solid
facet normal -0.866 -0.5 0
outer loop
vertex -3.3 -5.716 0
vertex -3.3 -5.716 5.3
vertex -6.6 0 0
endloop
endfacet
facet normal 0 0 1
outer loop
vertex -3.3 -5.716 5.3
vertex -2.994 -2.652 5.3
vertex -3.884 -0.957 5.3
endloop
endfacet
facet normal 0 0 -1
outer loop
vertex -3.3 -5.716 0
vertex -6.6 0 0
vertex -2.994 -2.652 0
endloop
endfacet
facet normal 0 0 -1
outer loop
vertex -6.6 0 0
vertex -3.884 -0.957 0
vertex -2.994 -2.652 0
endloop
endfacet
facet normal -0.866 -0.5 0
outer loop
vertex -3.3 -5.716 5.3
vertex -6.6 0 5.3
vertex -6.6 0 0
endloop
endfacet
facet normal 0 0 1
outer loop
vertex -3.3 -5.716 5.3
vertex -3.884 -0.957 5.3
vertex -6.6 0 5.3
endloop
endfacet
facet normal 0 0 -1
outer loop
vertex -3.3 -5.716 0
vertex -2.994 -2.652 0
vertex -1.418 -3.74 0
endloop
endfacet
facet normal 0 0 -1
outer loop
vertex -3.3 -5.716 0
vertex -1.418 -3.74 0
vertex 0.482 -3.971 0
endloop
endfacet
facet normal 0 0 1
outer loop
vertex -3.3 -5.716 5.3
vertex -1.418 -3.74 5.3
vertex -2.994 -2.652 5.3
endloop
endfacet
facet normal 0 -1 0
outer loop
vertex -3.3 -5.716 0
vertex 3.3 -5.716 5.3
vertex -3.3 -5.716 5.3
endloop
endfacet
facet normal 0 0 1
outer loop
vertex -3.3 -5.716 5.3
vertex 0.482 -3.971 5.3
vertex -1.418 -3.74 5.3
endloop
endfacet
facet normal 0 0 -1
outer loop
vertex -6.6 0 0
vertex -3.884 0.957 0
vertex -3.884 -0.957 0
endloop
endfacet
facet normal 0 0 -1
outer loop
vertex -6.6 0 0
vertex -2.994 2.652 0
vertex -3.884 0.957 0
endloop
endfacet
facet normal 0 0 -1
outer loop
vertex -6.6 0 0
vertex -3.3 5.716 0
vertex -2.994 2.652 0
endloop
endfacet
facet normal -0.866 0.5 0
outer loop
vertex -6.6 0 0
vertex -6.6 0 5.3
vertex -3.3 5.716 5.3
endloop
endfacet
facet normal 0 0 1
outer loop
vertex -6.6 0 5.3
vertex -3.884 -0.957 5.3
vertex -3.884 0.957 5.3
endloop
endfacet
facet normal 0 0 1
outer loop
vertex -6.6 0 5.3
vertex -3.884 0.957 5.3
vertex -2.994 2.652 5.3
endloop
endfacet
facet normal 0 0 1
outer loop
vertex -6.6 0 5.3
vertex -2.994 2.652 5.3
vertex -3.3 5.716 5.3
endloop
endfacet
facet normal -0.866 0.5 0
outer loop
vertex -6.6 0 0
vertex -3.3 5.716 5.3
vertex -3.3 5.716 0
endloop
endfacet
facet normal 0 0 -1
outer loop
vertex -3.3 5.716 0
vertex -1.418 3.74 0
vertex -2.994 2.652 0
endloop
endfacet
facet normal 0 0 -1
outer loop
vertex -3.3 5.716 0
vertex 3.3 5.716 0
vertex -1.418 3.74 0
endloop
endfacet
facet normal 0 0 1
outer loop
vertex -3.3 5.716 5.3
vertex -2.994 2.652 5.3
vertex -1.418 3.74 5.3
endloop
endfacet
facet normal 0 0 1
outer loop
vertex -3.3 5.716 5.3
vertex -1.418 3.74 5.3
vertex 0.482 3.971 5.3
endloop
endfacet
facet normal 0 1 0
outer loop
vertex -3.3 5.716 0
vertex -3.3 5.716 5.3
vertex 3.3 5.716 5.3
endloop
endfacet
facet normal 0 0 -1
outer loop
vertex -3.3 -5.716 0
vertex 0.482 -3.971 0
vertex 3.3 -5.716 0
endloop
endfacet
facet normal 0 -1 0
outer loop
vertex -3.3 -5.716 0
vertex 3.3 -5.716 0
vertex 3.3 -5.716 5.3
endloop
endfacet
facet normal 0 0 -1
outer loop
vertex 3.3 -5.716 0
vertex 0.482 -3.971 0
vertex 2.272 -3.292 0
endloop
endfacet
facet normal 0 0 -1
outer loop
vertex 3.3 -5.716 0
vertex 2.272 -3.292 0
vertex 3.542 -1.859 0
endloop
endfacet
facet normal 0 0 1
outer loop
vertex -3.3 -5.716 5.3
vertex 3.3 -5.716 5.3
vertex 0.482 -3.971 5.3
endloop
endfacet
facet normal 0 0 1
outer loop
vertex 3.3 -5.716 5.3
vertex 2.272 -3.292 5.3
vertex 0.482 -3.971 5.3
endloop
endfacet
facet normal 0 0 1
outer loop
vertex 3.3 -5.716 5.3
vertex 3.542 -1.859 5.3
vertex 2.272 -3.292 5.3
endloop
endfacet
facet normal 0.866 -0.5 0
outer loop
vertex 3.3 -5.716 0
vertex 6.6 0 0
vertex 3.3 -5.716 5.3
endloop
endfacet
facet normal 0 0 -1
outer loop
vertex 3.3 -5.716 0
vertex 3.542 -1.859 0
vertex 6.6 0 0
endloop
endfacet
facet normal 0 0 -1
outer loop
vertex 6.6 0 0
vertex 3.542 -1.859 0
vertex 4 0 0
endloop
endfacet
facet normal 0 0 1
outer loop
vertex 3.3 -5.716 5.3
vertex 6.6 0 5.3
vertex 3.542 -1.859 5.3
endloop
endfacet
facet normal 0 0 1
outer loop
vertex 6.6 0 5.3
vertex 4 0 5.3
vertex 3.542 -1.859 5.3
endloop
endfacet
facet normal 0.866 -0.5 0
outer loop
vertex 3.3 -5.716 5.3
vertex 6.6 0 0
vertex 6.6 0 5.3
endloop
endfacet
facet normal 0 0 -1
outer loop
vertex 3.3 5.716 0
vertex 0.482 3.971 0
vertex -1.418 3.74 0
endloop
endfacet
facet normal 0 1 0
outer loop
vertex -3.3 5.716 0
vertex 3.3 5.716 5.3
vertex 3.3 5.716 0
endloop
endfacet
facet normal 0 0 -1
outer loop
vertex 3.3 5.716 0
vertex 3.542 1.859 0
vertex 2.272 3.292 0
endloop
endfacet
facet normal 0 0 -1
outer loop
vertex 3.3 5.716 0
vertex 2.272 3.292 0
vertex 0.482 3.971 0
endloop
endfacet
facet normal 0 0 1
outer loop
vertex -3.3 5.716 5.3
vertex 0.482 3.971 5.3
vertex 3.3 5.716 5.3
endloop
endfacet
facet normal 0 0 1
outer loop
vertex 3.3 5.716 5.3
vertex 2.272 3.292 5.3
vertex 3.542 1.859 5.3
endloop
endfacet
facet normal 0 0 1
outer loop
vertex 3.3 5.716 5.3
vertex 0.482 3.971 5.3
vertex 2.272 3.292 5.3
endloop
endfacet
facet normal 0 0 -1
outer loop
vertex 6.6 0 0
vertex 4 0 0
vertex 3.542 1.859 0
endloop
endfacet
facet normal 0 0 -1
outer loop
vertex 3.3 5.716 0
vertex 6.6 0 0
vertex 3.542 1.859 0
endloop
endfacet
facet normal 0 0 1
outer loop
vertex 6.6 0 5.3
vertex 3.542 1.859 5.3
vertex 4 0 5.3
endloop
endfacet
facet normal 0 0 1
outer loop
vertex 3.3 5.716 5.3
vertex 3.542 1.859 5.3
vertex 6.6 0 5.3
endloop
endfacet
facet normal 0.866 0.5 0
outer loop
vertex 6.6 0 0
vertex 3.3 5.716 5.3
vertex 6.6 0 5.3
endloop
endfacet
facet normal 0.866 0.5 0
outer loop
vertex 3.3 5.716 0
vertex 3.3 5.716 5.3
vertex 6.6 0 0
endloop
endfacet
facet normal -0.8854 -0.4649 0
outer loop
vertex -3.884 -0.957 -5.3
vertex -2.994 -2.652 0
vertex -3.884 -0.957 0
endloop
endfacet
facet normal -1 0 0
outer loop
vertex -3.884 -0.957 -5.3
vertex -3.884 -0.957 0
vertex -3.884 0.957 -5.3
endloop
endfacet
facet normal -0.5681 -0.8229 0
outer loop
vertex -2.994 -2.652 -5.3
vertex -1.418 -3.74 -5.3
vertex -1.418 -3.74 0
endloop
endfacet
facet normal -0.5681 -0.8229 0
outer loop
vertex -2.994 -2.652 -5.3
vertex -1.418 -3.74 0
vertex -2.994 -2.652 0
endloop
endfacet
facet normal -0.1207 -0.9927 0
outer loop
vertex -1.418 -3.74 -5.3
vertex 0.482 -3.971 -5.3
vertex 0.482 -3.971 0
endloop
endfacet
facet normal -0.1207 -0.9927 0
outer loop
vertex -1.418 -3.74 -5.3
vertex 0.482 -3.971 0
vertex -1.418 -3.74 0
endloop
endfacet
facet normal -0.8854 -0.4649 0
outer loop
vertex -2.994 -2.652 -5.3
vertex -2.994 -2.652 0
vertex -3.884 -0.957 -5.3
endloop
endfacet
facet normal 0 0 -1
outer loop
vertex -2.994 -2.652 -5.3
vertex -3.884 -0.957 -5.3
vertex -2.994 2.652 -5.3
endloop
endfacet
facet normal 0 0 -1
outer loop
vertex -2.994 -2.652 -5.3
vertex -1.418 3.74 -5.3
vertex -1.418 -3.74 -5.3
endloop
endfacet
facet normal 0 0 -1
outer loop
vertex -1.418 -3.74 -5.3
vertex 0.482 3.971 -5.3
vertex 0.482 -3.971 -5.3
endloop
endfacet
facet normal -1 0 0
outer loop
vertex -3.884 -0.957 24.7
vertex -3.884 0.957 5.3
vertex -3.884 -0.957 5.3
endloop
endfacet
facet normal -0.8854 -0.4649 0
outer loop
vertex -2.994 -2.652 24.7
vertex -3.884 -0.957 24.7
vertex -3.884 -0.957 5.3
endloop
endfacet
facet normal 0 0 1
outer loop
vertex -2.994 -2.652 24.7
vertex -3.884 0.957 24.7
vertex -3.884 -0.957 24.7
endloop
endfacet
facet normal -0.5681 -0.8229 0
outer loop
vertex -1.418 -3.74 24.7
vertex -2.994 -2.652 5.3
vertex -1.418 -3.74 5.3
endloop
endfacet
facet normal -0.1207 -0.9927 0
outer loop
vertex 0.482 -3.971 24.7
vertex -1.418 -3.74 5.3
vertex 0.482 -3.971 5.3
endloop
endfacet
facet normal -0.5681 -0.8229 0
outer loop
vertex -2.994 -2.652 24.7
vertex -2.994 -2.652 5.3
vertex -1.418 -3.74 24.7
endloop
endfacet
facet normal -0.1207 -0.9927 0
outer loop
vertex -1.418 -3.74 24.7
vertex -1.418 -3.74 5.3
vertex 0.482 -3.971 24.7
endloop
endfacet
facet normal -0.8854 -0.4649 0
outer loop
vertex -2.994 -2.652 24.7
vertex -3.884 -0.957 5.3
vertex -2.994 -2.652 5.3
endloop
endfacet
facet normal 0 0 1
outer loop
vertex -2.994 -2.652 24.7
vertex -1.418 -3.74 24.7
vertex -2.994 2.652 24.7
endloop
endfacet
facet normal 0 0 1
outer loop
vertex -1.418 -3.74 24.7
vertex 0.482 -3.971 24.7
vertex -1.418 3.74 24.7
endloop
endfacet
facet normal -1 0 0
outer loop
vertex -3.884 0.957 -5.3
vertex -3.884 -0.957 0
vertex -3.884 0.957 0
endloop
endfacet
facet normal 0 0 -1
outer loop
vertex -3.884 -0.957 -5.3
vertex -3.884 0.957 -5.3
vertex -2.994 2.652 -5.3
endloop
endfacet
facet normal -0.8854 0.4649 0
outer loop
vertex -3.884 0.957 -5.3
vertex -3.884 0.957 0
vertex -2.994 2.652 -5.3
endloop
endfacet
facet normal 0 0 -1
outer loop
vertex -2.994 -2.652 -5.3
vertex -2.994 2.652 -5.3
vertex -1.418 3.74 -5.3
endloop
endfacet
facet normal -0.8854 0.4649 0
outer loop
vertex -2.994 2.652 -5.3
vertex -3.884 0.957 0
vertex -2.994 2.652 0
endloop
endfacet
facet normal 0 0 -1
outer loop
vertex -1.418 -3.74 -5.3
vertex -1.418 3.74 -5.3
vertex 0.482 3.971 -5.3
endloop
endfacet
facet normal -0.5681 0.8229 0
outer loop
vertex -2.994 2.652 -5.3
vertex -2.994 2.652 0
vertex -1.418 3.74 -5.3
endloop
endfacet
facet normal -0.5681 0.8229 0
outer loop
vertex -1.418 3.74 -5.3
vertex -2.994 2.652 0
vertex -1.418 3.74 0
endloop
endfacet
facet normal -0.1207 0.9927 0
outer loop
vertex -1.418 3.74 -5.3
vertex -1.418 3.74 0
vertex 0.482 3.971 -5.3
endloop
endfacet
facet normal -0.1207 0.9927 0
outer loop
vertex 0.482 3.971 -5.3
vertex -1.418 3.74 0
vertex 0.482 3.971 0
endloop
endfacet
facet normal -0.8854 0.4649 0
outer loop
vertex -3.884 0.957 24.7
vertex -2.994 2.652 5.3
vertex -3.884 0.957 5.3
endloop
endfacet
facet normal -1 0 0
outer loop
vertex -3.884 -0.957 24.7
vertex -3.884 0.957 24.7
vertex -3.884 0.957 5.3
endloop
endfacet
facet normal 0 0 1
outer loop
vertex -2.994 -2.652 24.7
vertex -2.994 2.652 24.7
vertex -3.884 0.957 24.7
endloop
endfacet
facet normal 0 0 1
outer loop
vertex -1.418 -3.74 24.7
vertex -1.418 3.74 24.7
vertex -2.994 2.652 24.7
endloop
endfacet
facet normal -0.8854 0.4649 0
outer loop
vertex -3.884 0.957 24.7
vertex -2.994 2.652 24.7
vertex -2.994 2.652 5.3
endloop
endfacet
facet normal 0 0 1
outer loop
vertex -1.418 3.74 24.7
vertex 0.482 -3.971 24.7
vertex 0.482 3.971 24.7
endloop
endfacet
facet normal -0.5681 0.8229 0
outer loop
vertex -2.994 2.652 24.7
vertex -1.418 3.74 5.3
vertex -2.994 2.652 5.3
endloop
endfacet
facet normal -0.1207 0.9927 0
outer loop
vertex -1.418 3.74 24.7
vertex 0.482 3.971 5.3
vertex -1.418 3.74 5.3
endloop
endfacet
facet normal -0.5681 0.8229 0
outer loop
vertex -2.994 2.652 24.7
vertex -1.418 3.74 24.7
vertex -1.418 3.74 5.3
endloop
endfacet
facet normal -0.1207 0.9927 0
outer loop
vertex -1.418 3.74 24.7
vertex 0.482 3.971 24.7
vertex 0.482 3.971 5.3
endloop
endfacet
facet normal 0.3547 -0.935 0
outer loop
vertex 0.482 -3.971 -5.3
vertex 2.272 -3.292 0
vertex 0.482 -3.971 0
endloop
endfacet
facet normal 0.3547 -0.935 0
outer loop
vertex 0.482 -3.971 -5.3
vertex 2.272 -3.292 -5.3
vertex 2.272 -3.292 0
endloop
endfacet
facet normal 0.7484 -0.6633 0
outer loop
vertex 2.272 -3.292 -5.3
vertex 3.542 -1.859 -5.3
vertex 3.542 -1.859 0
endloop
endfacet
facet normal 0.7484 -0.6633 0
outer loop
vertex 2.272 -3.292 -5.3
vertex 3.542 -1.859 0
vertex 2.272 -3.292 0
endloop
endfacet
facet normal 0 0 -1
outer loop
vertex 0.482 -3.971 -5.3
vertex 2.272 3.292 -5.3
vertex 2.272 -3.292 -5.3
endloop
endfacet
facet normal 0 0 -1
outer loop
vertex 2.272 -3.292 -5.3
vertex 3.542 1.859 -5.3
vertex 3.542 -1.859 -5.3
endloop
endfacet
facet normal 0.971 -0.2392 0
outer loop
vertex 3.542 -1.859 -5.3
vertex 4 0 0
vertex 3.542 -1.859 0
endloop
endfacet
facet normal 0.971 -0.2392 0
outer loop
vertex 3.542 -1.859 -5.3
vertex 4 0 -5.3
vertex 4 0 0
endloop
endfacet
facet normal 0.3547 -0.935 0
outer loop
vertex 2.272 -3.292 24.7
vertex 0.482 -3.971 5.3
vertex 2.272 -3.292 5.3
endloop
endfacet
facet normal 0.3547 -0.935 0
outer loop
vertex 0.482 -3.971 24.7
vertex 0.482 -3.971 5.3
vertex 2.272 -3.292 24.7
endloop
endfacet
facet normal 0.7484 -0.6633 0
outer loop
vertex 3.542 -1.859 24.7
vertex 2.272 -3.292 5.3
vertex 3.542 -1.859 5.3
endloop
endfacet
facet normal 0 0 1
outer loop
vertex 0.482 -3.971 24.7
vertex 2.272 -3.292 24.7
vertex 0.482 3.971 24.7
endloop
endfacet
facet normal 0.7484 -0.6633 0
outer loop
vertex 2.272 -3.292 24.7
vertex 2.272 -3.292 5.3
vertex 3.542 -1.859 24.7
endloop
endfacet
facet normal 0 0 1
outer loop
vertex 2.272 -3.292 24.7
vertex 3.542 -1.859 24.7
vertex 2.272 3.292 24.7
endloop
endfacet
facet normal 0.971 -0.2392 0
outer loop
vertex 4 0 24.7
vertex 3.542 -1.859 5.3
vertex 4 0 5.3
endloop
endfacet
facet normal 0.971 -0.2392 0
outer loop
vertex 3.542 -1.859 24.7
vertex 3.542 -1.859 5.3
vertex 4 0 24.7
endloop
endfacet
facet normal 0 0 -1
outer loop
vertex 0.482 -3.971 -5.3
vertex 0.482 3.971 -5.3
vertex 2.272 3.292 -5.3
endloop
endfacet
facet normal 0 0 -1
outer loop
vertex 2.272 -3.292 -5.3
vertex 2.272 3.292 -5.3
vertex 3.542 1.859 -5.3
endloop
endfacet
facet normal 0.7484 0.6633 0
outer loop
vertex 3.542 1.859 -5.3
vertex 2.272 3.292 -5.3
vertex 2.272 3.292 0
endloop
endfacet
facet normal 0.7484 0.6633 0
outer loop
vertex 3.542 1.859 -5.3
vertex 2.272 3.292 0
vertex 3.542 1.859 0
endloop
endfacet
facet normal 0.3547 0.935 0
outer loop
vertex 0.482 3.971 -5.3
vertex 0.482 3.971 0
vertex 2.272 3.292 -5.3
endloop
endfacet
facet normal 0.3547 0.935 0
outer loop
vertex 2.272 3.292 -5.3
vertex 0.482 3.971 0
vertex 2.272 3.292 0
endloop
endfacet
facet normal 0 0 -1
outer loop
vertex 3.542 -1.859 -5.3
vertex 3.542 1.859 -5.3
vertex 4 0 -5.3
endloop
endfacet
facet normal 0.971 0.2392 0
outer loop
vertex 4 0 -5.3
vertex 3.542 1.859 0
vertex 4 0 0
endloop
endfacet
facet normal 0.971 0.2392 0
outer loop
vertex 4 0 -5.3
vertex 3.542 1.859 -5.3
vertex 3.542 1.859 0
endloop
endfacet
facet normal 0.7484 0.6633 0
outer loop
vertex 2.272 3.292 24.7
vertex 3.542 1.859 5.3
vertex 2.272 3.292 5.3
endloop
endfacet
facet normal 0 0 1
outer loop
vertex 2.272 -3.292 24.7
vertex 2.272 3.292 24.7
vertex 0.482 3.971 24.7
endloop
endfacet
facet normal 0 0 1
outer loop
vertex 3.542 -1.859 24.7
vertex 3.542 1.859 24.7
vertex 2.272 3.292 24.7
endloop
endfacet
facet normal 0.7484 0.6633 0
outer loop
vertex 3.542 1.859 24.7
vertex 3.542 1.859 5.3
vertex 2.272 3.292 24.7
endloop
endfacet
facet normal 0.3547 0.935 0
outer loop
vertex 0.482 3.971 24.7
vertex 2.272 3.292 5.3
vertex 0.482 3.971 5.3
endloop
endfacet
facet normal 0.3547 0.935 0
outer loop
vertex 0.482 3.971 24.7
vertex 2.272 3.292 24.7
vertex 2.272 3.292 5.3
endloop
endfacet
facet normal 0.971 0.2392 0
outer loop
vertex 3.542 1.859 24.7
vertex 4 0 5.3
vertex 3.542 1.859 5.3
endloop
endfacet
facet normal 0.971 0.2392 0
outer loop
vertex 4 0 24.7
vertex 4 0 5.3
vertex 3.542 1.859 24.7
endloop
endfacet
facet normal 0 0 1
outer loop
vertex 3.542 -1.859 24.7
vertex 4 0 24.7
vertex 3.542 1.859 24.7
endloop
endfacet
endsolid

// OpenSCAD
// M8 Hex Bolt (shank only, no threads)

// Bolt dimensions
head_across_flats = 13; // Across-flats of the hex head
head_height = 5.3;     // Height of the hex head
shank_diameter = 8;    // Diameter of the shank
shank_length = 30;     // Length of the shank

// Calculate hex head radius and outer radius for minkowski
head_radius = head_across_flats / 2;
hex_outer_radius = head_radius / cos(30); // Radius to the vertex of the hexagon

// Create the hex head
module hex_head() {
    hull() {
        // Create 6 points of the hexagon at the base
        for (i = [0:6]) {
            rotate([0, 0, i * 60]) {
                translate([head_radius, 0, 0]) {
                    cylinder(h=head_height, r=0.1, center=false); // Small cylinder to define points
                }
            }
        }
    }
}

// Create the shank
module shank() {
    cylinder(h=shank_length, r=shank_diameter/2, center=false);
}

// Assemble the bolt
module m8_bolt() {
    // Place the hex head at the origin (z=0)
    // The hex_head module creates its base at z=0 by default
    hex_head();

    // Place the shank below the head, extending in the -Z direction
    // The hex head is at z=0 to head_height. The shank starts at z=0 and goes down.
    // So we need to translate the shank by head_height in the negative Z direction
    translate([0, 0, -head_height]) {
        shank();
    }
}

// Render the bolt
m8_bolt();
